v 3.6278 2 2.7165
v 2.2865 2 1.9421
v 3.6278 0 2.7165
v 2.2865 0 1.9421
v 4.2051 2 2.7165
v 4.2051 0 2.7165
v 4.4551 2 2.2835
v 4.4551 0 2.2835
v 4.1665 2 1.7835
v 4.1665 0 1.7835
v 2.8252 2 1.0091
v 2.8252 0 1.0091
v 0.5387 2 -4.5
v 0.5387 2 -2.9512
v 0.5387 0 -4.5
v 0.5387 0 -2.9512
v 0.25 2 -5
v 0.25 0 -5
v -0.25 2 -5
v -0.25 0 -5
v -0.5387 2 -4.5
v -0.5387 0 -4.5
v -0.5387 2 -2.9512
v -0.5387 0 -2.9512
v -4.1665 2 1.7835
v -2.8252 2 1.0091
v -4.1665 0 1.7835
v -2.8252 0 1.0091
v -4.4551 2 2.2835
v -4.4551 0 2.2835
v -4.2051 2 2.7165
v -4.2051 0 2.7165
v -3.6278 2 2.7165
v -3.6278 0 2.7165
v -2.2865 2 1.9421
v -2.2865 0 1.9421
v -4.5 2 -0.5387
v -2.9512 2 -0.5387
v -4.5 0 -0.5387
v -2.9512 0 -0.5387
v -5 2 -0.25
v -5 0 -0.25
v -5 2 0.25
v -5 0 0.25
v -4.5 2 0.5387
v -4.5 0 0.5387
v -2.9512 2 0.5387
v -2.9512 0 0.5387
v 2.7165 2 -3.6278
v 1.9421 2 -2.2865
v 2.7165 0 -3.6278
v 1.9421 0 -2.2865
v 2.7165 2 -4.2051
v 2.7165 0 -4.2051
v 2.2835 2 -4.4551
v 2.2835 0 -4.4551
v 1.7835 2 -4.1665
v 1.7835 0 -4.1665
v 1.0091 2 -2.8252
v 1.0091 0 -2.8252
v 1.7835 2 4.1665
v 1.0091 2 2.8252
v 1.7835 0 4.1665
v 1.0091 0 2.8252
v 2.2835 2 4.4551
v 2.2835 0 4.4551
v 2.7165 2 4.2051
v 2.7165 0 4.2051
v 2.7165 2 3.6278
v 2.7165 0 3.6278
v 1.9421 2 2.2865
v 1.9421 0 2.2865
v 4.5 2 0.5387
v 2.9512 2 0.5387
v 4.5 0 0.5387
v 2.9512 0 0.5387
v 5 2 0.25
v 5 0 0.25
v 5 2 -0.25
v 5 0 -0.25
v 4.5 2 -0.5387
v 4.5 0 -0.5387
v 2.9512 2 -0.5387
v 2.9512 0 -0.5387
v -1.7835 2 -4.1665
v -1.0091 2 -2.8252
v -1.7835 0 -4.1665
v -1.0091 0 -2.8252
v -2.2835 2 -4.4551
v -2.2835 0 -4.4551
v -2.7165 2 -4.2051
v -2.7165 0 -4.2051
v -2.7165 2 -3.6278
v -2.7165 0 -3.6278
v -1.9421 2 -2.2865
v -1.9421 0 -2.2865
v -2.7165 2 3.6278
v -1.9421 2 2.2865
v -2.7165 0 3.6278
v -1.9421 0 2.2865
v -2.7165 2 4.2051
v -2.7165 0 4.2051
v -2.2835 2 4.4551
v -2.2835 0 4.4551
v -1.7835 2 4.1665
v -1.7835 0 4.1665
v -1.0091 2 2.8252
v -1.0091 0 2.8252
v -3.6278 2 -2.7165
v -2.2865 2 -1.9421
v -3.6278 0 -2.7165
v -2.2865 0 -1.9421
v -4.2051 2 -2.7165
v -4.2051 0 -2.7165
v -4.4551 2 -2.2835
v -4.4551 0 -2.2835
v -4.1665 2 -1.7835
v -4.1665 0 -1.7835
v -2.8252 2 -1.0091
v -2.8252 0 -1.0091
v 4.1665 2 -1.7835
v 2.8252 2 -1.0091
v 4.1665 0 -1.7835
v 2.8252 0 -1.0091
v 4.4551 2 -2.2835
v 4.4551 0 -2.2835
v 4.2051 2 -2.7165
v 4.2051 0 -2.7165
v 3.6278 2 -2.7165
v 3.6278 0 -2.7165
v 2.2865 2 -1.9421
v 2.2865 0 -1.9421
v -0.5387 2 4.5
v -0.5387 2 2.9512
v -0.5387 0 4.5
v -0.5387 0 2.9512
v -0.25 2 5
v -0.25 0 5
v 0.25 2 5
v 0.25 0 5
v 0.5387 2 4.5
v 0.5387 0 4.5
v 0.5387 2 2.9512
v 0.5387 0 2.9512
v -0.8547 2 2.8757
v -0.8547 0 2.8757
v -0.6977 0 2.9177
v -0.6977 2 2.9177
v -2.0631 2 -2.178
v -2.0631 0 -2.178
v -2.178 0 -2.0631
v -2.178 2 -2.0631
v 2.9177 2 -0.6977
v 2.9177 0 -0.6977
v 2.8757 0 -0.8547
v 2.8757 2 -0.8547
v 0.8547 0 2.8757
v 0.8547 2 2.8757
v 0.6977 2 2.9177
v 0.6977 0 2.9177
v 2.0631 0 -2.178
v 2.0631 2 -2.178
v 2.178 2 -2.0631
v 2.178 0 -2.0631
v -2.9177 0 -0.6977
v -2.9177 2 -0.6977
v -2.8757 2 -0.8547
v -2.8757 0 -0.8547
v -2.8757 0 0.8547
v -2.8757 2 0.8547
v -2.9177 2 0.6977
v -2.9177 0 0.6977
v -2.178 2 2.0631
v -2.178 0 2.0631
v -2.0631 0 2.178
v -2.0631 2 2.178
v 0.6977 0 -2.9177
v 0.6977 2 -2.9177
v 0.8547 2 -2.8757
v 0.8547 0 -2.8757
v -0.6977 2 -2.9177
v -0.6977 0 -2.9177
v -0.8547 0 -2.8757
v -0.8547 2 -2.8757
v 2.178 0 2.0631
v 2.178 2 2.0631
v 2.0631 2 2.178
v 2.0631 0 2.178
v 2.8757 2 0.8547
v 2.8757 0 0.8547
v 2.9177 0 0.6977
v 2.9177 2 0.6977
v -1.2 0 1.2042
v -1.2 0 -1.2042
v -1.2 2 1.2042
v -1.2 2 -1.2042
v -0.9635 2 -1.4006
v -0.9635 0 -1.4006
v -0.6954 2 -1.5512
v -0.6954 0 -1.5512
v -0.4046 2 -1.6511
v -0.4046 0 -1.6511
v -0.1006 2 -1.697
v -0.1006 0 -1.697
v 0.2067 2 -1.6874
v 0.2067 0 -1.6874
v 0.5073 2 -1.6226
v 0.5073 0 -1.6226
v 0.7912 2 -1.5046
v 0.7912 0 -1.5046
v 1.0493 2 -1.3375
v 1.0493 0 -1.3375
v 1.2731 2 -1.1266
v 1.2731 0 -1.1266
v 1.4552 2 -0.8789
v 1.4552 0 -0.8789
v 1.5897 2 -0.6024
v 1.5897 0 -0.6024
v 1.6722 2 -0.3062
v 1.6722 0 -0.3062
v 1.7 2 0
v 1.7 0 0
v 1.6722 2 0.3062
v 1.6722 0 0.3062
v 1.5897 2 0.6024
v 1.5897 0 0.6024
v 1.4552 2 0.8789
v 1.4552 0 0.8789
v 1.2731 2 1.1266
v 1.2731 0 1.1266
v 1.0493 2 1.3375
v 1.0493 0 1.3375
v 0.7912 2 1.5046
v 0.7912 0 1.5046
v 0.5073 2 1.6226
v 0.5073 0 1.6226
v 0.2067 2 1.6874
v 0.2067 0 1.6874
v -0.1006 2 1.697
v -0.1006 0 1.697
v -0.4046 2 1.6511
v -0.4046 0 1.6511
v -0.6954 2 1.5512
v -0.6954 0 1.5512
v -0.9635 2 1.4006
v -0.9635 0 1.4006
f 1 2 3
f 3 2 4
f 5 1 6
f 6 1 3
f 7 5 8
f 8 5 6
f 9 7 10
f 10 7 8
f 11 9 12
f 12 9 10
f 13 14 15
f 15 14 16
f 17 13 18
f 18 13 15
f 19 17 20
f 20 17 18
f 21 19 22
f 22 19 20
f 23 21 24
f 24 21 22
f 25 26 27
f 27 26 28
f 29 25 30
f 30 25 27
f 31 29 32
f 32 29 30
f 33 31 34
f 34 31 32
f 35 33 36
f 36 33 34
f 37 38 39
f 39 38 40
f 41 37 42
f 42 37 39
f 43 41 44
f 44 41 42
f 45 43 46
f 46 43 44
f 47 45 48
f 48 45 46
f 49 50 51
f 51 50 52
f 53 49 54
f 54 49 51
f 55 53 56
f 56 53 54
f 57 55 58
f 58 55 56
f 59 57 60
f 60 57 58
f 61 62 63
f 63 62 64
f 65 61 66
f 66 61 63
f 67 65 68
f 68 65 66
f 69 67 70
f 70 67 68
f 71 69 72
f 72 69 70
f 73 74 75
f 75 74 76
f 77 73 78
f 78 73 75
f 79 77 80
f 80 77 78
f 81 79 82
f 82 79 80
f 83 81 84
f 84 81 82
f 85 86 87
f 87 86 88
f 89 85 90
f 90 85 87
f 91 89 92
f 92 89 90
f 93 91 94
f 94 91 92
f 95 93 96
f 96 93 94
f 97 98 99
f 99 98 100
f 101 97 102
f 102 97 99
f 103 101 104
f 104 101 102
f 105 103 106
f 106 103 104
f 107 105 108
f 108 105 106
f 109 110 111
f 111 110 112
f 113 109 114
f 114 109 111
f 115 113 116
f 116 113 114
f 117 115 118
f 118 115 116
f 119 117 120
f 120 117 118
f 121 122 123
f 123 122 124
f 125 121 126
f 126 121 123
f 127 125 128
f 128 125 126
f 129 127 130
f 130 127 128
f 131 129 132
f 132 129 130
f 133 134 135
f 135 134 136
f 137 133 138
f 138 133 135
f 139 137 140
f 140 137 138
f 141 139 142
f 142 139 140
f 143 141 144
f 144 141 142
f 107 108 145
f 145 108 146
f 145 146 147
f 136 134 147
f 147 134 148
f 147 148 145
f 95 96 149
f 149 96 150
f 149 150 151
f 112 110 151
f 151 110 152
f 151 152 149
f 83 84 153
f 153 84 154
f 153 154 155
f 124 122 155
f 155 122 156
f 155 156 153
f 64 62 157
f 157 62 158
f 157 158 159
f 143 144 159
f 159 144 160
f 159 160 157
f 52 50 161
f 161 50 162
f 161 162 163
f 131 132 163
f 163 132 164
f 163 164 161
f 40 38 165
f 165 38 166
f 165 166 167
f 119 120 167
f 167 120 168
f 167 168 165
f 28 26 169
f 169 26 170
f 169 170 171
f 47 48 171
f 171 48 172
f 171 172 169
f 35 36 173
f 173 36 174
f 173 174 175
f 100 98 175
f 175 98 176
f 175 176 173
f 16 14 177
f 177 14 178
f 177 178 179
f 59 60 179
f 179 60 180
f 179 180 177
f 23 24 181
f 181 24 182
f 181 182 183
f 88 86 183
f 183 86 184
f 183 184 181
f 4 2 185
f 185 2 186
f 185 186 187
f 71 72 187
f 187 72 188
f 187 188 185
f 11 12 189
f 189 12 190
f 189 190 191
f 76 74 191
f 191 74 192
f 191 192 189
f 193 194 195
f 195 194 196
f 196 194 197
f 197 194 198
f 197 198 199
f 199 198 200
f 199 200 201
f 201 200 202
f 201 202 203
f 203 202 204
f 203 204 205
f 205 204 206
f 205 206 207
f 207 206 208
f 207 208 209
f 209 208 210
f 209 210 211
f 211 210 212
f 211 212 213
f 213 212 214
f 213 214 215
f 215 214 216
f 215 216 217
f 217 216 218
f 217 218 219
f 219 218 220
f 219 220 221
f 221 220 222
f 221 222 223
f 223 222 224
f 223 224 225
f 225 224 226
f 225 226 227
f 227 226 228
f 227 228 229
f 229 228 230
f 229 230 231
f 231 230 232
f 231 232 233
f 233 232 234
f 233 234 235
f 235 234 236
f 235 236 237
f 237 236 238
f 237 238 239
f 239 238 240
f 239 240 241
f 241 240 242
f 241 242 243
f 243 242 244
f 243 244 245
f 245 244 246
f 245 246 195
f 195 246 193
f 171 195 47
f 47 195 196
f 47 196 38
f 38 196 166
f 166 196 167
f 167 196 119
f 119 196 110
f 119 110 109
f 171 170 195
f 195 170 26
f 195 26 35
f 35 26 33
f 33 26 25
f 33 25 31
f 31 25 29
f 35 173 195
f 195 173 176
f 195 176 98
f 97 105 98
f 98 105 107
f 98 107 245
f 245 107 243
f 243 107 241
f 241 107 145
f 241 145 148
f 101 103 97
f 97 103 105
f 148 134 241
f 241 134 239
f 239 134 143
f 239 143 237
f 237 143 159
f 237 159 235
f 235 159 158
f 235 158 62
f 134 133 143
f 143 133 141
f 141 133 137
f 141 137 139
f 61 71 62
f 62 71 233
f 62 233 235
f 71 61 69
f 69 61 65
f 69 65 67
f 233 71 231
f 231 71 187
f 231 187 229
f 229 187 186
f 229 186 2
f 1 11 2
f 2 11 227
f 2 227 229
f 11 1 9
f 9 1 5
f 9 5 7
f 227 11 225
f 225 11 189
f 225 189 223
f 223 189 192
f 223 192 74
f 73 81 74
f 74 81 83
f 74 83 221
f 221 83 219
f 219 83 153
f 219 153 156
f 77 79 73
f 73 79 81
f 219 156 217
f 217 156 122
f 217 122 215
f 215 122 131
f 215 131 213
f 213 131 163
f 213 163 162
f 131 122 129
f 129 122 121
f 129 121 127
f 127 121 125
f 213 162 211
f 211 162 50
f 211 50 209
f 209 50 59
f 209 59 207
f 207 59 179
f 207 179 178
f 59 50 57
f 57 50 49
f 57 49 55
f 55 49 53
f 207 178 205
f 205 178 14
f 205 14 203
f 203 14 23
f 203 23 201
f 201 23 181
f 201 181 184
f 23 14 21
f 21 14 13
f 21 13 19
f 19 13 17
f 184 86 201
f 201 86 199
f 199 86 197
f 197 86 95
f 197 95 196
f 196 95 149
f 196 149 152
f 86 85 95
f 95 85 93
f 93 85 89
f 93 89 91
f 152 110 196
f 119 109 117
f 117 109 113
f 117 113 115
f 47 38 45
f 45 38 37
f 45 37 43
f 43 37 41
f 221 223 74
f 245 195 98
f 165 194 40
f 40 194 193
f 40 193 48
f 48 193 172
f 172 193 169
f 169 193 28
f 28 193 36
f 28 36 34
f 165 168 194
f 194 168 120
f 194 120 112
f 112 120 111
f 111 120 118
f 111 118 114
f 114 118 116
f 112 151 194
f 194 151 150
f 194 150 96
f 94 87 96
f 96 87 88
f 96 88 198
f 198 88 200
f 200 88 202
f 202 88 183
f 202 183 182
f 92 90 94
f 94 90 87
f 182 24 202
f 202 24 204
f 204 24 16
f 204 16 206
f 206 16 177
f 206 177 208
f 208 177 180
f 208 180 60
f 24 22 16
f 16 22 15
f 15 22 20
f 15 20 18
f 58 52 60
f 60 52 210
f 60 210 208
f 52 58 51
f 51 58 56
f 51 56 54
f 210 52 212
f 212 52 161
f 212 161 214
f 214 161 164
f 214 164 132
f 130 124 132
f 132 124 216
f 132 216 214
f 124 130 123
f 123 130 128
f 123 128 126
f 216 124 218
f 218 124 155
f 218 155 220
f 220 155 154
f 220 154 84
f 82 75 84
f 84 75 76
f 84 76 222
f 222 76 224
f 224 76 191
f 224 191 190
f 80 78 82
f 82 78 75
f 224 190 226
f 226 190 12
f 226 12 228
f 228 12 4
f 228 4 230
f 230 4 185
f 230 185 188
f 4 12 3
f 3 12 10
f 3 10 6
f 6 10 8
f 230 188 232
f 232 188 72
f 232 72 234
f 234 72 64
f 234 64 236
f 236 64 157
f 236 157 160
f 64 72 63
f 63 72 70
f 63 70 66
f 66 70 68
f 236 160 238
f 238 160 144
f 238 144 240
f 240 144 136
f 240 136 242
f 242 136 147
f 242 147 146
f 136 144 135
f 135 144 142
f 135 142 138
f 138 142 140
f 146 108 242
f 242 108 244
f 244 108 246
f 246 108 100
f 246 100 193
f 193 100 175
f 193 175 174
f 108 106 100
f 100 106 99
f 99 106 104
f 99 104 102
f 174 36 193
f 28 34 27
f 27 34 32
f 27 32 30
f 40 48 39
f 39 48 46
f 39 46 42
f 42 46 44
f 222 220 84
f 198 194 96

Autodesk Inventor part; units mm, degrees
ref_plane "YZ Plane" through (0, 0, 0) normal (1, 0, 0) x (0, 1, 0)
ref_plane "XZ Plane" through (0, 0, 0) normal (0, 1, 0) x (-1, 0, 0)
ref_plane "XY Plane" through (0, 0, 0) normal (0, 0, 1) x (1, 0, 0)
sketch "Esboço1" plane through (0, 0, 0) normal (0, 1, 0) x (-1, 0, 0)
  arc A0 (1, 1.118) -> (1, -1.118) centre (0, 0) ccw construction
  line L0 (1, 1.118) -> (1, -1.118) construction
  line L1 (0, 0) -> (-1.5, 0) construction
  line L2 (1.2, -1.2042) -> (1.2, 1.2042)
  arc A1 (1.2, 1.2042) -> (1.2, -1.2042) centre (0, 0) ccw
  circle A2 centre (0, 0) radius 3
  point P0 (1, 0)
  dimension "d0" = 3
  dimension "d1" = 2.5
  dimension "d2" = 0.2
  dimension "d3" = 6
extrude "Extrusão1" add sketch "Esboço1" along normal blind 2
sketch "Esboço2" plane through (0, 2, 0) normal (0, 1, 0) x (1, 0, 0)
  line L0 (0, 0) -> (-5, 0) construction
  line L1 (-5, 0) -> (-5, 0.25)
  line L2 (-5, 0.25) -> (-4.5, 0.5387)
  line L3 (-4.5, 0.5387) -> (-2.8873, 0.5387)
  line L4 (-5, 0) -> (-5, -0.25)
  line L5 (-5, -0.25) -> (-4.5, -0.5387)
  line L6 (-4.5, -0.5387) -> (-2.8873, -0.5387)
  line L7 (-4.3301, -2.5) -> (-4.4551, -2.2835)
  line L8 (-4.4551, -2.2835) -> (-4.1665, -1.7835)
  line L9 (-4.1665, -1.7835) -> (-2.7698, -0.9771)
  line L10 (-4.3301, -2.5) -> (-4.2051, -2.7165)
  line L11 (-4.2051, -2.7165) -> (-3.6278, -2.7165)
  line L12 (-3.6278, -2.7165) -> (-2.2311, -1.9102)
  line L13 (-2.5, -4.3301) -> (-2.7165, -4.2051)
  line L14 (-2.7165, -4.2051) -> (-2.7165, -3.6278)
  line L15 (-2.7165, -3.6278) -> (-1.9102, -2.2311)
  line L16 (-2.5, -4.3301) -> (-2.2835, -4.4551)
  line L17 (-2.2835, -4.4551) -> (-1.7835, -4.1665)
  line L18 (-1.7835, -4.1665) -> (-0.9771, -2.7698)
  line L19 (0, -5) -> (-0.25, -5)
  line L20 (-0.25, -5) -> (-0.5387, -4.5)
  line L21 (-0.5387, -4.5) -> (-0.5387, -2.8873)
  line L22 (0, -5) -> (0.25, -5)
  line L23 (0.25, -5) -> (0.5387, -4.5)
  line L24 (0.5387, -4.5) -> (0.5387, -2.8873)
  line L25 (2.5, -4.3301) -> (2.2835, -4.4551)
  line L26 (2.2835, -4.4551) -> (1.7835, -4.1665)
  line L27 (1.7835, -4.1665) -> (0.9771, -2.7698)
  line L28 (2.5, -4.3301) -> (2.7165, -4.2051)
  line L29 (2.7165, -4.2051) -> (2.7165, -3.6278)
  line L30 (2.7165, -3.6278) -> (1.9102, -2.2311)
  line L31 (4.3301, -2.5) -> (4.2051, -2.7165)
  line L32 (4.2051, -2.7165) -> (3.6278, -2.7165)
  line L33 (3.6278, -2.7165) -> (2.2311, -1.9102)
  line L34 (4.3301, -2.5) -> (4.4551, -2.2835)
  line L35 (4.4551, -2.2835) -> (4.1665, -1.7835)
  line L36 (4.1665, -1.7835) -> (2.7698, -0.9771)
  line L37 (5, 0) -> (5, -0.25)
  line L38 (5, -0.25) -> (4.5, -0.5387)
  line L39 (4.5, -0.5387) -> (2.8873, -0.5387)
  line L40 (5, 0) -> (5, 0.25)
  line L41 (5, 0.25) -> (4.5, 0.5387)
  line L42 (4.5, 0.5387) -> (2.8873, 0.5387)
  line L43 (4.3301, 2.5) -> (4.4551, 2.2835)
  line L44 (4.4551, 2.2835) -> (4.1665, 1.7835)
  line L45 (4.1665, 1.7835) -> (2.7698, 0.9771)
  line L46 (4.3301, 2.5) -> (4.2051, 2.7165)
  line L47 (4.2051, 2.7165) -> (3.6278, 2.7165)
  line L48 (3.6278, 2.7165) -> (2.2311, 1.9102)
  line L49 (2.5, 4.3301) -> (2.7165, 4.2051)
  line L50 (2.7165, 4.2051) -> (2.7165, 3.6278)
  line L51 (2.7165, 3.6278) -> (1.9102, 2.2311)
  line L52 (2.5, 4.3301) -> (2.2835, 4.4551)
  line L53 (2.2835, 4.4551) -> (1.7835, 4.1665)
  line L54 (1.7835, 4.1665) -> (0.9771, 2.7698)
  line L55 (0, 5) -> (0.25, 5)
  line L56 (0.25, 5) -> (0.5387, 4.5)
  line L57 (0.5387, 4.5) -> (0.5387, 2.8873)
  line L58 (0, 5) -> (-0.25, 5)
  line L59 (-0.25, 5) -> (-0.5387, 4.5)
  line L60 (-0.5387, 4.5) -> (-0.5387, 2.8873)
  line L61 (-2.5, 4.3301) -> (-2.2835, 4.4551)
  line L62 (-2.2835, 4.4551) -> (-1.7835, 4.1665)
  line L63 (-1.7835, 4.1665) -> (-0.9771, 2.7698)
  line L64 (-2.5, 4.3301) -> (-2.7165, 4.2051)
  line L65 (-2.7165, 4.2051) -> (-2.7165, 3.6278)
  line L66 (-2.7165, 3.6278) -> (-1.9102, 2.2311)
  line L67 (-4.3301, 2.5) -> (-4.2051, 2.7165)
  line L68 (-4.2051, 2.7165) -> (-3.6278, 2.7165)
  line L69 (-3.6278, 2.7165) -> (-2.2311, 1.9102)
  line L70 (-4.3301, 2.5) -> (-4.4551, 2.2835)
  line L71 (-4.4551, 2.2835) -> (-4.1665, 1.7835)
  line L72 (-4.1665, 1.7835) -> (-2.7698, 0.9771)
  circle A0 centre (0, 0) radius 3
  point P0 (-1.0091, -2.8252)
  point P1 (-1.9421, -2.2865)
  point P2 (-2.2865, -1.9421)
  point P3 (-2.8252, -1.0091)
  point P4 (-2.9512, -0.5387)
  point P5 (-2.9512, 0.5387)
  point P6 (-2.8252, 1.0091)
  point P7 (-2.2865, 1.9421)
  point P8 (-1.9421, 2.2865)
  point P9 (-1.0091, 2.8252)
  point P10 (-0.5387, 2.9512)
  point P11 (0.5387, 2.9512)
  point P12 (1.0091, 2.8252)
  point P13 (1.9421, 2.2865)
  point P14 (2.2865, 1.9421)
  point P15 (2.8252, 1.0091)
  point P16 (2.9512, 0.5387)
  point P17 (2.9512, -0.5387)
  point P18 (2.8252, -1.0091)
  point P19 (2.2865, -1.9421)
  point P20 (1.9421, -2.2865)
  point P21 (1.0091, -2.8252)
  point P22 (0.5387, -2.9512)
  point P23 (-0.5387, -2.9512)
  dimension "d15" = 6
  dimension "d6" = 5
  dimension "d7" = 0.25
  dimension "d9" = 60
  dimension "d10" = 0.5
  dimension "d13" = 360
extrude "Extrusão2" add sketch "Esboço2" against normal blind 2 contours L1 L2 L3 A0 L6 L5 L4 | L72 L71 L70 L67 L68 L69 A0 | A0 L12 L11 L10 L7 L8 L9 | L66 L65 L64 L61 L62 L63 A0 | A0 L18 L17 L16 L13 L14 L15 | L60 L59 L58 L55 L56 L57 A0 | A0 L24 L23 L22 L19 L20 L21 | L54 L53 L52 L49 L50 L51 A0 | A0 L30 L29 L28 L25 L26 L27 | L48 L47 L46 L43 L44 L45 A0 | A0 L36 L35 L34 L31 L32 L33 | L42 L41 L40 L37 L38 L39 A0
properties part number "Gear"
